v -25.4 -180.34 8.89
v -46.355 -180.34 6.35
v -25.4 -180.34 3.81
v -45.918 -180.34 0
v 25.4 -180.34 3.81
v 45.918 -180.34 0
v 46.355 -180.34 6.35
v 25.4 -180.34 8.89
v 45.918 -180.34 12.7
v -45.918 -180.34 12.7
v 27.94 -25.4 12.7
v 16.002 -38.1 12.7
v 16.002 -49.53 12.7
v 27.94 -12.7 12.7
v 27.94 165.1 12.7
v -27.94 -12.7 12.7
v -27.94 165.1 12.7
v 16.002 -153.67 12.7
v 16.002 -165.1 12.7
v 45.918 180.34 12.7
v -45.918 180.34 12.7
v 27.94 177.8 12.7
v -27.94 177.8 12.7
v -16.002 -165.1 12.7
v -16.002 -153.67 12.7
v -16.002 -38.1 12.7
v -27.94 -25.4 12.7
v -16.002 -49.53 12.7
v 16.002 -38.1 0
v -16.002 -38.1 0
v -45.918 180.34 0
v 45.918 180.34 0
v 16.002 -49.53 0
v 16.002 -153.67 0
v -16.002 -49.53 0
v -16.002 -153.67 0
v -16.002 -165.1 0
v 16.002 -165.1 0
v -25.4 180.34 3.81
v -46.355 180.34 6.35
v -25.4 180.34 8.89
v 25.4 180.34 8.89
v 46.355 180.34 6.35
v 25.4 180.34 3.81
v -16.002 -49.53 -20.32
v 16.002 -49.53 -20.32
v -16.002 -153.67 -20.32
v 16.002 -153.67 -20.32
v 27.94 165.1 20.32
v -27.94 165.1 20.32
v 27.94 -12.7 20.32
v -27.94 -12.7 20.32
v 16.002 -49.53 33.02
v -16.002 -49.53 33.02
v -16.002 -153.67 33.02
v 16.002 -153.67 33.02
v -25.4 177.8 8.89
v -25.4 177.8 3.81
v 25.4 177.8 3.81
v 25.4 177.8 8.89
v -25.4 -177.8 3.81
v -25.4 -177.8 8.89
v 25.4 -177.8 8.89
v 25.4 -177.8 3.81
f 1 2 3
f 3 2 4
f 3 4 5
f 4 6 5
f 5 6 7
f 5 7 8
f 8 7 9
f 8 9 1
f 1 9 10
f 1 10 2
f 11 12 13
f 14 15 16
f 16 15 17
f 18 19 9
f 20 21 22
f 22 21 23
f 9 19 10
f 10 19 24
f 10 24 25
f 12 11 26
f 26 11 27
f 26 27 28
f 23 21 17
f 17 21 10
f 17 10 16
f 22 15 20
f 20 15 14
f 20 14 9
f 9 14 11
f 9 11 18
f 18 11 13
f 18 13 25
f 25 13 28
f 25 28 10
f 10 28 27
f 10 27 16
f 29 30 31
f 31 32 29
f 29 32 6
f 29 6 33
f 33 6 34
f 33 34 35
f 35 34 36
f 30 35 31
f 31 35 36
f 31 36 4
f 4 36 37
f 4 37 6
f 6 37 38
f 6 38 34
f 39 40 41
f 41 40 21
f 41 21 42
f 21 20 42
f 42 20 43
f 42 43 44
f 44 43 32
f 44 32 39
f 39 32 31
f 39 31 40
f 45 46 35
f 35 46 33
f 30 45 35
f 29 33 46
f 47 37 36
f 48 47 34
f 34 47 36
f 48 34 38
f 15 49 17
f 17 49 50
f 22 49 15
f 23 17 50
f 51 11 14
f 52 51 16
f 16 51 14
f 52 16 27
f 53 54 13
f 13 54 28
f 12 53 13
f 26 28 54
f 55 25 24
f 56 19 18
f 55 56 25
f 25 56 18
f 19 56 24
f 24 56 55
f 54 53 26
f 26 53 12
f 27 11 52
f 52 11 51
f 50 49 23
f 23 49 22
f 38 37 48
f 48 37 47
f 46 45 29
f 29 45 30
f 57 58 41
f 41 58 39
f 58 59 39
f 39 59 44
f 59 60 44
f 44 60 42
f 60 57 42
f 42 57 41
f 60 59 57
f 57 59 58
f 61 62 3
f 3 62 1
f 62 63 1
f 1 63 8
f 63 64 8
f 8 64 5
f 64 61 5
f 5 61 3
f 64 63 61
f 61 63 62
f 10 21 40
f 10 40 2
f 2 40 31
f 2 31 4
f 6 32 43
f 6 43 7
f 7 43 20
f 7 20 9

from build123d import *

# Parameters (mm, degrees)
SKETCH1_W           = 99.06
SKETCH1_H           = 360.68
BOSS_EXTRUDE1_DEPTH = 12.7
SKETCH3_W           = 32.004
SKETCH3_H           = 11.43
BOSS_EXTRUDE3_DEPTH = 20.32
SKETCH2_W           = 55.88
SKETCH2_H           = 12.7
BOSS_EXTRUDE4_DEPTH = 7.62
CUT_EXTRUDE2_DEPTH  = 38.1
SKETCH6_W           = 50.8
SKETCH6_H           = 5.08
CUT_EXTRUDE3_DEPTH  = 2.54
SKETCH7_R           = 50.8
SKETCH7_R_2         = 46.355
CUT_EXTRUDE4_DEPTH  = 366.559302576


with BuildPart() as part:
    # Sketch1 → Boss-Extrude1 (new body)
    with BuildSketch(Plane.XY):
        Rectangle(SKETCH1_W, SKETCH1_H)
    extrude(amount=BOSS_EXTRUDE1_DEPTH)

    # Sketch3 → Boss-Extrude3 (add)
    with BuildSketch(Plane(origin=(0, 0, 0), x_dir=(-1, 0, 0), z_dir=(0, 0, -1))):
        with Locations((0, -43.815)):
            Rectangle(SKETCH3_W, SKETCH3_H)
        with Locations((0, -159.385)):
            Rectangle(SKETCH3_W, SKETCH3_H)
    boss_extrude3 = extrude(amount=BOSS_EXTRUDE3_DEPTH)

    # Sketch2 → Boss-Extrude4 (add, symmetric)
    with BuildSketch(Plane.XY.offset(12.7)):
        with Locations((0, 171.45)):
            Rectangle(SKETCH2_W, SKETCH2_H)
        with Locations((0, -19.05)):
            Rectangle(SKETCH2_W, SKETCH2_H)
    extrude(amount=BOSS_EXTRUDE4_DEPTH, both=True)

    # Mirror1: Boss-Extrude3 across plane
    add(boss_extrude3.mirror(Plane.XY.offset(6.35)))

    # Sketch5 → Cut-Extrude2 (cut, symmetric)
    with BuildSketch(Plane(origin=(0, 0, 0), x_dir=(0, 0, -1), z_dir=(1, 0, 0))):
        Polygon((20.32, -153.67), (0, -165.1), (20.32, -165.1), align=None)
        Polygon((-33.02, -153.67), (-12.7, -165.1), (-33.02, -165.1), align=None)
        Polygon((-33.02, -49.53), (-33.02, -38.1), (-12.7, -38.1), align=None)
        Polygon((20.32, -49.53), (0, -38.1), (20.32, -38.1), align=None)
        Polygon((-12.7, 177.8), (-20.32, 165.1), (-20.32, 177.8), align=None)
        Polygon((-20.32, -12.7), (-12.7, -25.4), (-20.32, -25.4), align=None)
    extrude(amount=CUT_EXTRUDE2_DEPTH, both=True, mode=Mode.SUBTRACT)

    # Sketch6 → Cut-Extrude3 (cut)
    with BuildSketch(Plane(origin=(0, 180.34, 0), x_dir=(1, 0, 0), z_dir=(0, 1, 0))):
        with Locations((0, -6.35)):
            Rectangle(SKETCH6_W, SKETCH6_H)
    cut_extrude3 = extrude(amount=-CUT_EXTRUDE3_DEPTH, mode=Mode.SUBTRACT)

    # Mirror2: Cut-Extrude3 across plane
    add(cut_extrude3.mirror(Plane.ZX), mode=Mode.SUBTRACT)

    # Sketch7 → Cut-Extrude4 (cut, through all)
    with BuildSketch(Plane(origin=(0, 180.34, 0), x_dir=(1, 0, 0), z_dir=(0, 1, 0))):
        with Locations((0, -6.35)):
            Circle(SKETCH7_R)
        with Locations((0, -6.35)):
            Circle(SKETCH7_R_2, mode=Mode.SUBTRACT)
    extrude(amount=-CUT_EXTRUDE4_DEPTH, mode=Mode.SUBTRACT)


solid = part.part
